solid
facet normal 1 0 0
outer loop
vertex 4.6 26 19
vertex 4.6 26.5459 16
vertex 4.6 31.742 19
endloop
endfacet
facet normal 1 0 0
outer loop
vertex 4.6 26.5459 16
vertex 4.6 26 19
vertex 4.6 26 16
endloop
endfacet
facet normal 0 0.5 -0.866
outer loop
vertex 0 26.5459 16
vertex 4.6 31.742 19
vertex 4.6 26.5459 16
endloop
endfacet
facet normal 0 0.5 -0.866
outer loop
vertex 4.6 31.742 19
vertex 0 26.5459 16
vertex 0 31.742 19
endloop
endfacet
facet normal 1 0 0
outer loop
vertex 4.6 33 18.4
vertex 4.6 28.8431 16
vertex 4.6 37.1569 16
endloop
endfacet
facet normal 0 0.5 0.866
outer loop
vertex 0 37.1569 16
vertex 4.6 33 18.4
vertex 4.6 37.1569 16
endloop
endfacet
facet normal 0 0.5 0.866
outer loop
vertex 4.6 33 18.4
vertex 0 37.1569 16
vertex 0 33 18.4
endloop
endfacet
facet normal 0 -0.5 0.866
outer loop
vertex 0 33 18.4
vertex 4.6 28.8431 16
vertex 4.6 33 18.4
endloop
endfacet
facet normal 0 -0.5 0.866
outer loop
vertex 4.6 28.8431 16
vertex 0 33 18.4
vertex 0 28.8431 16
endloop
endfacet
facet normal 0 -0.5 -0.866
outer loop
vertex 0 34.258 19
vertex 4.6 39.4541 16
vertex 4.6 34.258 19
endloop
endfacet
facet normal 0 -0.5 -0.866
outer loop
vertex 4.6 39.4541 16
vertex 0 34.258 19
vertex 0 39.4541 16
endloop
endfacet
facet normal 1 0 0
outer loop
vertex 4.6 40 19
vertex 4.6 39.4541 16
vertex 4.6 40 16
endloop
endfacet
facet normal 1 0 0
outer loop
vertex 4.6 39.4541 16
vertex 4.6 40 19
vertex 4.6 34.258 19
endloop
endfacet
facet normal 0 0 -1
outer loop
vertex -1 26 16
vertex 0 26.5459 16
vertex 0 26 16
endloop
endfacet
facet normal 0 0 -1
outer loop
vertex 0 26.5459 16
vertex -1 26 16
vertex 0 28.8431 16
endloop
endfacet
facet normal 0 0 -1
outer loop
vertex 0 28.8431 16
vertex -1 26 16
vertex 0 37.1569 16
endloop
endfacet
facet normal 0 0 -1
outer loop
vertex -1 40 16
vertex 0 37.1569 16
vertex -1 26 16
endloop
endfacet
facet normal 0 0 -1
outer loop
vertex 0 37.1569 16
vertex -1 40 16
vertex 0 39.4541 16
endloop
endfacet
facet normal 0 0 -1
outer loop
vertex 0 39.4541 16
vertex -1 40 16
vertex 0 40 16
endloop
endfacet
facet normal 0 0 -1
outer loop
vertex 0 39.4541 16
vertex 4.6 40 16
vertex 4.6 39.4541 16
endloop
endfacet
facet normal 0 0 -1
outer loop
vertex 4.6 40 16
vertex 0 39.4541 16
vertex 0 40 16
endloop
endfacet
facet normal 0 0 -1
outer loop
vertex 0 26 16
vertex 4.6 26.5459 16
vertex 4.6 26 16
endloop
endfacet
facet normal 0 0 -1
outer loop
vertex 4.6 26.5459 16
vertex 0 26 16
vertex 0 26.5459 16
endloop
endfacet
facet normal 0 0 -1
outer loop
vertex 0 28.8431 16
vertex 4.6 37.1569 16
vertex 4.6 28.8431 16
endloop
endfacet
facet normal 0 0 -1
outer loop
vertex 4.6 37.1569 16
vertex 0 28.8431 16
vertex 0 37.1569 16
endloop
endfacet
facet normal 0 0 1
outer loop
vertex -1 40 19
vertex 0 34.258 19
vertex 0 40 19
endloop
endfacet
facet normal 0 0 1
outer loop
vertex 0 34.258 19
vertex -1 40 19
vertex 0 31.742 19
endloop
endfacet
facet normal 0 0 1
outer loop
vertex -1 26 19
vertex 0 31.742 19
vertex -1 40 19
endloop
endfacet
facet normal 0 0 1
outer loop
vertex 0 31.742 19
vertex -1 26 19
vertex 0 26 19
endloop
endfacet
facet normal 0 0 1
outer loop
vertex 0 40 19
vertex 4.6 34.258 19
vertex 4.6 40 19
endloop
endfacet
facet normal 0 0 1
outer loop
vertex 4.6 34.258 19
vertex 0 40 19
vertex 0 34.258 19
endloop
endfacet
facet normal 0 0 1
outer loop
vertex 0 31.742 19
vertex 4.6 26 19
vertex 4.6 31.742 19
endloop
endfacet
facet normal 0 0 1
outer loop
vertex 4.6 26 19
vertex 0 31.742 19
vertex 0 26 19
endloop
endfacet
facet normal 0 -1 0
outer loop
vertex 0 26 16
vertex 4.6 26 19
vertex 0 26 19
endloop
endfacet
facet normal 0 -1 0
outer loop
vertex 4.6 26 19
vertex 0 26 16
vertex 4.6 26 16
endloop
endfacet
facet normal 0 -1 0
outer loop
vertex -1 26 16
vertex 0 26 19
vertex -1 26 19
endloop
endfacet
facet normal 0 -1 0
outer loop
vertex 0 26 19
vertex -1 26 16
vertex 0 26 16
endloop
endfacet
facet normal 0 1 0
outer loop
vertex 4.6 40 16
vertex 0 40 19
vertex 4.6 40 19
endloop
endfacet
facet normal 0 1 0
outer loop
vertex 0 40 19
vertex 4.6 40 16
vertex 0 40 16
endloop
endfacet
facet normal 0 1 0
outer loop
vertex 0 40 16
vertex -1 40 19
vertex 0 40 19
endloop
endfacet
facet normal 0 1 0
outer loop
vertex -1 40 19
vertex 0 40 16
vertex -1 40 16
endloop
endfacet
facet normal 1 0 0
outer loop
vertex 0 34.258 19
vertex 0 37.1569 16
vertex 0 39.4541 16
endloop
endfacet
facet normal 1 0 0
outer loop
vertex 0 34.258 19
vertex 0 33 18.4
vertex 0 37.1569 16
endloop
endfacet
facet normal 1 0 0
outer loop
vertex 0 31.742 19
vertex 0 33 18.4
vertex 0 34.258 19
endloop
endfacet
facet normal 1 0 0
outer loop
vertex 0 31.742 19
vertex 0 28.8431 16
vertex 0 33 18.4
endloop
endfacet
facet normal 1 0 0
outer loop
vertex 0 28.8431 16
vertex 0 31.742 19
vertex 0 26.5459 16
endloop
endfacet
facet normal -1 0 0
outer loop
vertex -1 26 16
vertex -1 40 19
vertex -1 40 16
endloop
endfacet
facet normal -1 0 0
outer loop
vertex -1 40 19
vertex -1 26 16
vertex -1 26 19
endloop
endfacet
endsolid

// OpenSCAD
$fn=200;

length = 75;
width= 20;
height = 45;

wall=4;

hole_offset_left=33;
hole_offset_height=10;
box_width=2;

// Radius pipe with leds
ir1=16.8/2;
// Height for initial increase
ih1=30;
// Height to keep stable until end of leds
ih2=40;
// Hole radius to be cut later by manual tools
hr1=0.5;

// Position for microcontroller housing
mcr=22.4/2;

// Length for microcontroller hole
mch=60+5;

// Battery radius
br=18.8;
// Battery height
bh=5;

dist=33;
   
translate([-1,26,19]) rotate([0,90,0]) cube(size=[3,14,1]);

difference() {
    translate([0,0,0]) {
        for ( i = [0 : 1] ){
            for ( j = [0 : 1] ){
                translate([0,i*dist+(dist/2*(j%2)),j*28.6]){
                    difference() {
                        translate([-0.4,0,0]) rotate([0,90,0]) cylinder(r=br-0.4,h=bh, $fn=6);
                    }
                }
            }
        }
    }
    translate([-0.4,-100,16]) rotate([0,90,0]) cube(size=[1000,1000,1000]);
    translate([-0.4,-100,1019]) rotate([0,90,0]) cube(size=[1000,1000,1000]);
    translate([-0.4,-974,1000]) rotate([0,90,0]) cube(size=[1000,1000,1000]);
    translate([-0.4,40,1000]) rotate([0,90,0]) cube(size=[1000,1000,1000]);
}
